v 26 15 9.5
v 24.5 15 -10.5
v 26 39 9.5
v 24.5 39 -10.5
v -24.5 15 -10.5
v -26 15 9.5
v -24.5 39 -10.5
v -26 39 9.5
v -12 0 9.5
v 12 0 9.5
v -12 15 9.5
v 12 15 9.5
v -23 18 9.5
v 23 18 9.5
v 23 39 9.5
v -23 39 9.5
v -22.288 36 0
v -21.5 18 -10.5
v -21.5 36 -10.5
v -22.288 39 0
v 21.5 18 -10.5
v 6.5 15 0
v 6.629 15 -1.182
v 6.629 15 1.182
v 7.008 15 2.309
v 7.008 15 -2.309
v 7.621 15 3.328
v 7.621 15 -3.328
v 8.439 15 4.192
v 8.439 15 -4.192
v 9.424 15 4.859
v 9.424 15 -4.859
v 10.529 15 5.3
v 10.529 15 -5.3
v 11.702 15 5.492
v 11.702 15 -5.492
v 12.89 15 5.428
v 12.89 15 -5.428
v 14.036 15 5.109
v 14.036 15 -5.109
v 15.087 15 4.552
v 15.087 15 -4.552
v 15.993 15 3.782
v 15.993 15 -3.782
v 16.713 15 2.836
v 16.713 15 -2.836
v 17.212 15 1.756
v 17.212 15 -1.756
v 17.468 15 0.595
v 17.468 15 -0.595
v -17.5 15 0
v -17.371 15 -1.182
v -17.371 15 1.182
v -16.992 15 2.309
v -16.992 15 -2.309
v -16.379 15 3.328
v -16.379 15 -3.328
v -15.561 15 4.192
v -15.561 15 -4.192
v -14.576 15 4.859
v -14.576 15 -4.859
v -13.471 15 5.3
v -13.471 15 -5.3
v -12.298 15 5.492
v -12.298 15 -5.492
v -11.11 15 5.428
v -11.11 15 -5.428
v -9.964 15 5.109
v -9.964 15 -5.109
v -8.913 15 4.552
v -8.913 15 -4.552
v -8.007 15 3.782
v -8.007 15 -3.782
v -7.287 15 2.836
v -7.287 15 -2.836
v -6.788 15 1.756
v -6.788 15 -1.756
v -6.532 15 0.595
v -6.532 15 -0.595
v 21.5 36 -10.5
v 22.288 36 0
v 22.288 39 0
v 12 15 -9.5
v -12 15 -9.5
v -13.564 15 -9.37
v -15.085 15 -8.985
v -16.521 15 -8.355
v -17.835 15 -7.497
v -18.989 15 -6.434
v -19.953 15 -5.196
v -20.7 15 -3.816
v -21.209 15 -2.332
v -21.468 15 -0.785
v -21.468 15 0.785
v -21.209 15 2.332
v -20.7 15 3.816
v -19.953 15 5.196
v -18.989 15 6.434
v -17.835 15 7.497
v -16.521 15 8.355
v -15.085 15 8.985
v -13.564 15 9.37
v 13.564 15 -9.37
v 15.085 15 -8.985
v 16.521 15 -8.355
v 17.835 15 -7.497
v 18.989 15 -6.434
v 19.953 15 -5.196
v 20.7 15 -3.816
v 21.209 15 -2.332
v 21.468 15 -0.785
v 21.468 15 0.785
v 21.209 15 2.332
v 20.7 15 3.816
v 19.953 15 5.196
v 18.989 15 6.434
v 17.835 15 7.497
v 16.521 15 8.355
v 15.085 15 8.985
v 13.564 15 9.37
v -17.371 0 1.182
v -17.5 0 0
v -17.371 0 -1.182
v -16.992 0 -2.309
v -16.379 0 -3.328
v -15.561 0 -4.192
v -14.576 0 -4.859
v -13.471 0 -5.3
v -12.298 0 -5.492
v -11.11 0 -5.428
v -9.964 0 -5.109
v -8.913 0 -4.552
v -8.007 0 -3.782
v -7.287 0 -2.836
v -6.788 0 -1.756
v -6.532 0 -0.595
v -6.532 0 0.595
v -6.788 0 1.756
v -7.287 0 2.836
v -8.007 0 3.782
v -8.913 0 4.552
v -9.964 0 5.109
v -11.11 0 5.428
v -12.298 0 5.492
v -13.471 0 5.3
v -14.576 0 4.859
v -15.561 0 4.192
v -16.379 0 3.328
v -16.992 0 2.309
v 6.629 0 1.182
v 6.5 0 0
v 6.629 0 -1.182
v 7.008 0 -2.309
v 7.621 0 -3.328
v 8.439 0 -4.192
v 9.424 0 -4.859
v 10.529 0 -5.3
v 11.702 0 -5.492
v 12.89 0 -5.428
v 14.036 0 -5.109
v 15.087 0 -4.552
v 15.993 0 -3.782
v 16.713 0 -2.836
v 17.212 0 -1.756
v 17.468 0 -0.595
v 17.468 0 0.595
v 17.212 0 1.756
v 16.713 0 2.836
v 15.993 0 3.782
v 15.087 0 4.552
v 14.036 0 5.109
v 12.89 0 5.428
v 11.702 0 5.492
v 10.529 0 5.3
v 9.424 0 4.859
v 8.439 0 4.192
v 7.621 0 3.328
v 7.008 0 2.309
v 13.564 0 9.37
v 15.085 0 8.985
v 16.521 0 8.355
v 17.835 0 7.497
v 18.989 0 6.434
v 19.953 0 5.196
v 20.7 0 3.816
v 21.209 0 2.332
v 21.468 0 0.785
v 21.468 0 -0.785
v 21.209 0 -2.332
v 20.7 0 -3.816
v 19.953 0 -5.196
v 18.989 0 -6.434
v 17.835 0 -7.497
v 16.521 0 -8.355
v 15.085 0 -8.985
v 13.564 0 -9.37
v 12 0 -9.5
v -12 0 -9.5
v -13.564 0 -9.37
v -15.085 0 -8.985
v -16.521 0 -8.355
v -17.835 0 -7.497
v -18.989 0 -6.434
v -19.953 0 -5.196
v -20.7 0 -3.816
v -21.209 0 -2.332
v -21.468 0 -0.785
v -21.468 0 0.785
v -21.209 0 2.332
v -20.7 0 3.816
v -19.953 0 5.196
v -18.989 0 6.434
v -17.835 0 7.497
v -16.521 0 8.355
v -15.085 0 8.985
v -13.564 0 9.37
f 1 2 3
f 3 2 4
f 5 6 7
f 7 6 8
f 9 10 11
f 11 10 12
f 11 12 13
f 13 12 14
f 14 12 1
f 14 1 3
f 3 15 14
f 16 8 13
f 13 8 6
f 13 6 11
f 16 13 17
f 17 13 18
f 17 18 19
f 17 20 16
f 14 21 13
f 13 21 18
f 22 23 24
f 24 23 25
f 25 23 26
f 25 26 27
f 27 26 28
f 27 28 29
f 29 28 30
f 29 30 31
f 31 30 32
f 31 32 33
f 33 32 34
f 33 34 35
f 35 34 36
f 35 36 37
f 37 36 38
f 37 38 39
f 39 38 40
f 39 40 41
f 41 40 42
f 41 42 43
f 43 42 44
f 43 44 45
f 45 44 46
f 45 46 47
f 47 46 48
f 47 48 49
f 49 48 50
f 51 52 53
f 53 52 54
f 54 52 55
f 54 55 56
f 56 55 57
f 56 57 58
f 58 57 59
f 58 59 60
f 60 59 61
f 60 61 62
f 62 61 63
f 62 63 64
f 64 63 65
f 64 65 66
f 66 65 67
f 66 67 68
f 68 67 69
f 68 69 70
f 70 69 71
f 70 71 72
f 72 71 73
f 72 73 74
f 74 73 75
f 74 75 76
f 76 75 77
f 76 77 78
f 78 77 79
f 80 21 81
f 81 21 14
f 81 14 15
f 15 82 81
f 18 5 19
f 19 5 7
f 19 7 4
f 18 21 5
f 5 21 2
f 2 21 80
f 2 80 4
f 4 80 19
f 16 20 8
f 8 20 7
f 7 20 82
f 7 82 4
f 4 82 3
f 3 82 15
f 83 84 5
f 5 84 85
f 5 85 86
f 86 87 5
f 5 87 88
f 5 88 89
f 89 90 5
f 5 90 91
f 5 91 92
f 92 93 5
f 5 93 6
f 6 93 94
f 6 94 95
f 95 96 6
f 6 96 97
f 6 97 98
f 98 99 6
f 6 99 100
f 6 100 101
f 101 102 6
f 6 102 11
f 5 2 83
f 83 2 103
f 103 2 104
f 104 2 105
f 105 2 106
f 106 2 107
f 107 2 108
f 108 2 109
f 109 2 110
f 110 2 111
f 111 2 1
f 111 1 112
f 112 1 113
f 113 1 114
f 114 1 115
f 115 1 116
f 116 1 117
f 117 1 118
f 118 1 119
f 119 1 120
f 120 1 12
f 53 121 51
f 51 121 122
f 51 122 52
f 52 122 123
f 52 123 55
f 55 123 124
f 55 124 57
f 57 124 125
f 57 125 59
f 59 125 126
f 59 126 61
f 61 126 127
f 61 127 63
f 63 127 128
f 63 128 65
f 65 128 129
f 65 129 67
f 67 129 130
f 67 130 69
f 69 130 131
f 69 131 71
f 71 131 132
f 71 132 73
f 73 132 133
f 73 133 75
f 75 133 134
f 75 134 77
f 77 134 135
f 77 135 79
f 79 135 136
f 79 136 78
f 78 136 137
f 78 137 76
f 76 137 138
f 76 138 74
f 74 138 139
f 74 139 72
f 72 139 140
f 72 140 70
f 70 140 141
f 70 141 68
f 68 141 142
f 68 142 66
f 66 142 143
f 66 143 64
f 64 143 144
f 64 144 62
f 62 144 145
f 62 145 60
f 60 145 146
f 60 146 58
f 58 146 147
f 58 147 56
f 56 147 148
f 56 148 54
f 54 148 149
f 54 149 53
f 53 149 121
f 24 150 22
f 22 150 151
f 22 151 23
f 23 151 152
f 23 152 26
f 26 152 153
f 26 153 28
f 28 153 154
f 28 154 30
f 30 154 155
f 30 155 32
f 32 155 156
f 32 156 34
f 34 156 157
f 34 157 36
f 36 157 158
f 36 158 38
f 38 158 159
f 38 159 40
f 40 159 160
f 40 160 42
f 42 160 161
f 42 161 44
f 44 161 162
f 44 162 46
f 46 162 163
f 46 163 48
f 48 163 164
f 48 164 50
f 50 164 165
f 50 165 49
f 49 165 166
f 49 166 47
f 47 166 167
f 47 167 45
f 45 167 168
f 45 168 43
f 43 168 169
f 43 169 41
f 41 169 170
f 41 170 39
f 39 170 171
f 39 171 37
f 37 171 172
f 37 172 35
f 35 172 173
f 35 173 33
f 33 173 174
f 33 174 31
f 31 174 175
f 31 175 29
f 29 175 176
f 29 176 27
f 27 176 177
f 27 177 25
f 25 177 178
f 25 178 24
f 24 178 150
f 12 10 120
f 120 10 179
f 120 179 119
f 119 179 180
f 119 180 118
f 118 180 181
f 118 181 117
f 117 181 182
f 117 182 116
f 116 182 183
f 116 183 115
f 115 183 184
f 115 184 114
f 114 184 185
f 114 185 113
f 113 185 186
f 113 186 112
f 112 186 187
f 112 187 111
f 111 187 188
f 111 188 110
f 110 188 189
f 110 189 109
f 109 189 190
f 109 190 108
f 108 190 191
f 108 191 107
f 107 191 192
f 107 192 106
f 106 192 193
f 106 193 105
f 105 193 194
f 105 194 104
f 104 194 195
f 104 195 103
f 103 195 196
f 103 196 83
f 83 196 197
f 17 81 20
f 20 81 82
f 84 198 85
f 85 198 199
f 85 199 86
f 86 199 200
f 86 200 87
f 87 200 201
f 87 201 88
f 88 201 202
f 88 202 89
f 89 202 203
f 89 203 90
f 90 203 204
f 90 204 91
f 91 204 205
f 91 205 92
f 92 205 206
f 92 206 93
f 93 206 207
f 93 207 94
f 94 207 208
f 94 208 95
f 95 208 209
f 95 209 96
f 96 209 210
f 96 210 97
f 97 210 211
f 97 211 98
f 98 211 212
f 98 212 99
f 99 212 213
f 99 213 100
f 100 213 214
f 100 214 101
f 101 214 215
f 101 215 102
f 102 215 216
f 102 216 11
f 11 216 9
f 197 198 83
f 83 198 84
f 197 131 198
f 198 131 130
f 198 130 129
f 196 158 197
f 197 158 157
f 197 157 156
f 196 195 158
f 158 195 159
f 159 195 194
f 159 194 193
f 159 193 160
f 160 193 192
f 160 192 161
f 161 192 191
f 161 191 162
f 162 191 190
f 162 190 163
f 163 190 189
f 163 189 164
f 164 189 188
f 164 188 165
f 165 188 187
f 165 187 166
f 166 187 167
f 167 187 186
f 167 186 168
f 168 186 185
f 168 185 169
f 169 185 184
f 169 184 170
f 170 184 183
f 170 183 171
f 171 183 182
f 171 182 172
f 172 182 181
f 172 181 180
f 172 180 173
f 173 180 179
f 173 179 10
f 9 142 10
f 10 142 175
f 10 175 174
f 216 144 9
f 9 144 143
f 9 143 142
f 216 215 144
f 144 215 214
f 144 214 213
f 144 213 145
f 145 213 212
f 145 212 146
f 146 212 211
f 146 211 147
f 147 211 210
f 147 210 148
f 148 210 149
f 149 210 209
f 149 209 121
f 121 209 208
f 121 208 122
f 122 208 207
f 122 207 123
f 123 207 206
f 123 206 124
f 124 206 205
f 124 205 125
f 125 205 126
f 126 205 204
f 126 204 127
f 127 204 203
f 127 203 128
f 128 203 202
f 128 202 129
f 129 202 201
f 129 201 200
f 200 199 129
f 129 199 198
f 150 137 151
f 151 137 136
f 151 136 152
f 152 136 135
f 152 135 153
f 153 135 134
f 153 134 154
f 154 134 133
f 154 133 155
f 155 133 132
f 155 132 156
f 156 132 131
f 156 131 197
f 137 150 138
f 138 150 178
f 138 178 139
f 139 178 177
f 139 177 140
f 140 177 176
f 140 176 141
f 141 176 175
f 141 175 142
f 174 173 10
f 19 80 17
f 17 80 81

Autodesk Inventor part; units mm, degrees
ref_plane "YZ Plane" through (0, 0, 0) normal (1, 0, 0) x (0, 1, 0)
ref_plane "XZ Plane" through (0, 0, 0) normal (0, 1, 0) x (-1, 0, 0)
ref_plane "XY Plane" through (0, 0, 0) normal (0, 0, 1) x (1, 0, 0)
sketch "스케치1" plane through (0, 0, 0) normal (0, 1, 0) x (-1, 0, 0)
  circle A0 centre (12, 0) radius 5.5
  circle A1 centre (-12, 0) radius 5.5
  line L0 (30.1, 0) -> (-30.1, 0) projected
  line L1 (12, 0) -> (-12, 0) construction
  line L2 (12, 9.5) -> (-12, 9.5)
  line L3 (-12, -9.5) -> (12, -9.5)
  arc A2 (12, -9.5) -> (12, 9.5) centre (12, 0) ccw
  arc A3 (-12, 9.5) -> (-12, -9.5) centre (-12, 0) ccw
  point P0 (0, 0)
  point P1 (0, 0)
  dimension "d0" = 11
  dimension "d1" = 11
  dimension "d2" = 12
  dimension "d3" = 12
  dimension "d4" = 4
extrude "돌출1" add sketch "스케치1" along normal blind 15 contours L0 A2 L3 A3 A1 A0 | A0 L0 A1 A3 L2 A2
sketch "스케치2" plane through (0, 15, 0) normal (0, 1, 0) x (1, 0, 0)
  line L0 (-12, -9.5) -> (12, -9.5) projected
  line L1 (0, -9.5) -> (-23, -9.5)
  line L2 (0, -9.5) -> (23, -9.5)
  line L3 (-21.5, 10.5) -> (21.5, 10.5)
  line L4 (-36.4, 0) -> (36.4, 0) projected
  line L5 (0, 14.5) -> (0, -13.5) projected
  line L6 (0, -9.5) -> (0, 10.5)
  line L7 (-21.5, 10.5) -> (-23, -9.5)
  line L8 (21.5, 10.5) -> (23, -9.5)
  line L9 (-23, -9.5) -> (-26, -9.5)
  line L10 (23, -9.5) -> (26, -9.5)
  line L11 (-21.5, 10.5) -> (-24.5, 10.5)
  line L12 (-24.5, 10.5) -> (-26, -9.5)
  line L13 (21.5, 10.5) -> (24.5, 10.5)
  line L14 (24.5, 10.5) -> (26, -9.5)
  point P0 (0, 0)
  dimension "d7" = 23
  dimension "d8" = 23
  dimension "d9" = 43
  dimension "d10" = 20
  dimension "d11" = 3
  dimension "d12" = 3
  dimension "d13" = 3
  dimension "d14" = 3
extrude "돌출2" add sketch "스케치2" along normal blind 3
sketch "스케치3" plane through (0, 18, 0) normal (0, 1, 0) x (1, 0, 0)
  line L0 (-21.5, 10.5) -> (-23, -9.5) projected
  line L1 (21.5, 10.5) -> (23, -9.5) projected
  line L2 (-26, -9.5) -> (26, -9.5) projected
  line L3 (26, -9.5) -> (24.5, 10.5) projected
  line L4 (24.5, 10.5) -> (-24.5, 10.5) projected
  line L5 (-24.5, 10.5) -> (-26, -9.5) projected
  point P0 (0, 0)
  point P1 (23, -9.5)
  point P2 (-23, -9.5)
extrude "돌출3" add sketch "스케치3" along normal blind 18 contours L0 L2 L5 L4 | L4 L3 L2 L1
sketch "스케치4" plane through (0, 36, 0) normal (0, 1, 0) x (1, 0, 0)
  line L0 (23, -9.5) -> (21.5, 10.5) projected
  line L1 (21.5, 10.5) -> (-21.5, 10.5) projected
  line L2 (-21.5, 10.5) -> (-23, -9.5) projected
  line L3 (-23, -9.5) -> (23, -9.5) projected
  line L4 (-22.2875, 0) -> (22.2875, 0)
  line L5 (-26, -9.5) -> (-23, -9.5) projected
  line L6 (-23, -9.5) -> (-21.5, 10.5) projected
  line L7 (-21.5, 10.5) -> (-24.5, 10.5) projected
  line L8 (-24.5, 10.5) -> (-26, -9.5) projected
  line L9 (24.5, 10.5) -> (21.5, 10.5) projected
  line L10 (21.5, 10.5) -> (23, -9.5) projected
  line L11 (23, -9.5) -> (26, -9.5) projected
  line L12 (26, -9.5) -> (24.5, 10.5) projected
  point P0 (0, 0)
  point P1 (0, 0)
extrude "돌출4" add sketch "스케치4" along normal blind 3 contours L0 L9 L12 L11 | L4 L2 L1 L0 | L5 L8 L7 L2
properties part number "카메라 상단"
